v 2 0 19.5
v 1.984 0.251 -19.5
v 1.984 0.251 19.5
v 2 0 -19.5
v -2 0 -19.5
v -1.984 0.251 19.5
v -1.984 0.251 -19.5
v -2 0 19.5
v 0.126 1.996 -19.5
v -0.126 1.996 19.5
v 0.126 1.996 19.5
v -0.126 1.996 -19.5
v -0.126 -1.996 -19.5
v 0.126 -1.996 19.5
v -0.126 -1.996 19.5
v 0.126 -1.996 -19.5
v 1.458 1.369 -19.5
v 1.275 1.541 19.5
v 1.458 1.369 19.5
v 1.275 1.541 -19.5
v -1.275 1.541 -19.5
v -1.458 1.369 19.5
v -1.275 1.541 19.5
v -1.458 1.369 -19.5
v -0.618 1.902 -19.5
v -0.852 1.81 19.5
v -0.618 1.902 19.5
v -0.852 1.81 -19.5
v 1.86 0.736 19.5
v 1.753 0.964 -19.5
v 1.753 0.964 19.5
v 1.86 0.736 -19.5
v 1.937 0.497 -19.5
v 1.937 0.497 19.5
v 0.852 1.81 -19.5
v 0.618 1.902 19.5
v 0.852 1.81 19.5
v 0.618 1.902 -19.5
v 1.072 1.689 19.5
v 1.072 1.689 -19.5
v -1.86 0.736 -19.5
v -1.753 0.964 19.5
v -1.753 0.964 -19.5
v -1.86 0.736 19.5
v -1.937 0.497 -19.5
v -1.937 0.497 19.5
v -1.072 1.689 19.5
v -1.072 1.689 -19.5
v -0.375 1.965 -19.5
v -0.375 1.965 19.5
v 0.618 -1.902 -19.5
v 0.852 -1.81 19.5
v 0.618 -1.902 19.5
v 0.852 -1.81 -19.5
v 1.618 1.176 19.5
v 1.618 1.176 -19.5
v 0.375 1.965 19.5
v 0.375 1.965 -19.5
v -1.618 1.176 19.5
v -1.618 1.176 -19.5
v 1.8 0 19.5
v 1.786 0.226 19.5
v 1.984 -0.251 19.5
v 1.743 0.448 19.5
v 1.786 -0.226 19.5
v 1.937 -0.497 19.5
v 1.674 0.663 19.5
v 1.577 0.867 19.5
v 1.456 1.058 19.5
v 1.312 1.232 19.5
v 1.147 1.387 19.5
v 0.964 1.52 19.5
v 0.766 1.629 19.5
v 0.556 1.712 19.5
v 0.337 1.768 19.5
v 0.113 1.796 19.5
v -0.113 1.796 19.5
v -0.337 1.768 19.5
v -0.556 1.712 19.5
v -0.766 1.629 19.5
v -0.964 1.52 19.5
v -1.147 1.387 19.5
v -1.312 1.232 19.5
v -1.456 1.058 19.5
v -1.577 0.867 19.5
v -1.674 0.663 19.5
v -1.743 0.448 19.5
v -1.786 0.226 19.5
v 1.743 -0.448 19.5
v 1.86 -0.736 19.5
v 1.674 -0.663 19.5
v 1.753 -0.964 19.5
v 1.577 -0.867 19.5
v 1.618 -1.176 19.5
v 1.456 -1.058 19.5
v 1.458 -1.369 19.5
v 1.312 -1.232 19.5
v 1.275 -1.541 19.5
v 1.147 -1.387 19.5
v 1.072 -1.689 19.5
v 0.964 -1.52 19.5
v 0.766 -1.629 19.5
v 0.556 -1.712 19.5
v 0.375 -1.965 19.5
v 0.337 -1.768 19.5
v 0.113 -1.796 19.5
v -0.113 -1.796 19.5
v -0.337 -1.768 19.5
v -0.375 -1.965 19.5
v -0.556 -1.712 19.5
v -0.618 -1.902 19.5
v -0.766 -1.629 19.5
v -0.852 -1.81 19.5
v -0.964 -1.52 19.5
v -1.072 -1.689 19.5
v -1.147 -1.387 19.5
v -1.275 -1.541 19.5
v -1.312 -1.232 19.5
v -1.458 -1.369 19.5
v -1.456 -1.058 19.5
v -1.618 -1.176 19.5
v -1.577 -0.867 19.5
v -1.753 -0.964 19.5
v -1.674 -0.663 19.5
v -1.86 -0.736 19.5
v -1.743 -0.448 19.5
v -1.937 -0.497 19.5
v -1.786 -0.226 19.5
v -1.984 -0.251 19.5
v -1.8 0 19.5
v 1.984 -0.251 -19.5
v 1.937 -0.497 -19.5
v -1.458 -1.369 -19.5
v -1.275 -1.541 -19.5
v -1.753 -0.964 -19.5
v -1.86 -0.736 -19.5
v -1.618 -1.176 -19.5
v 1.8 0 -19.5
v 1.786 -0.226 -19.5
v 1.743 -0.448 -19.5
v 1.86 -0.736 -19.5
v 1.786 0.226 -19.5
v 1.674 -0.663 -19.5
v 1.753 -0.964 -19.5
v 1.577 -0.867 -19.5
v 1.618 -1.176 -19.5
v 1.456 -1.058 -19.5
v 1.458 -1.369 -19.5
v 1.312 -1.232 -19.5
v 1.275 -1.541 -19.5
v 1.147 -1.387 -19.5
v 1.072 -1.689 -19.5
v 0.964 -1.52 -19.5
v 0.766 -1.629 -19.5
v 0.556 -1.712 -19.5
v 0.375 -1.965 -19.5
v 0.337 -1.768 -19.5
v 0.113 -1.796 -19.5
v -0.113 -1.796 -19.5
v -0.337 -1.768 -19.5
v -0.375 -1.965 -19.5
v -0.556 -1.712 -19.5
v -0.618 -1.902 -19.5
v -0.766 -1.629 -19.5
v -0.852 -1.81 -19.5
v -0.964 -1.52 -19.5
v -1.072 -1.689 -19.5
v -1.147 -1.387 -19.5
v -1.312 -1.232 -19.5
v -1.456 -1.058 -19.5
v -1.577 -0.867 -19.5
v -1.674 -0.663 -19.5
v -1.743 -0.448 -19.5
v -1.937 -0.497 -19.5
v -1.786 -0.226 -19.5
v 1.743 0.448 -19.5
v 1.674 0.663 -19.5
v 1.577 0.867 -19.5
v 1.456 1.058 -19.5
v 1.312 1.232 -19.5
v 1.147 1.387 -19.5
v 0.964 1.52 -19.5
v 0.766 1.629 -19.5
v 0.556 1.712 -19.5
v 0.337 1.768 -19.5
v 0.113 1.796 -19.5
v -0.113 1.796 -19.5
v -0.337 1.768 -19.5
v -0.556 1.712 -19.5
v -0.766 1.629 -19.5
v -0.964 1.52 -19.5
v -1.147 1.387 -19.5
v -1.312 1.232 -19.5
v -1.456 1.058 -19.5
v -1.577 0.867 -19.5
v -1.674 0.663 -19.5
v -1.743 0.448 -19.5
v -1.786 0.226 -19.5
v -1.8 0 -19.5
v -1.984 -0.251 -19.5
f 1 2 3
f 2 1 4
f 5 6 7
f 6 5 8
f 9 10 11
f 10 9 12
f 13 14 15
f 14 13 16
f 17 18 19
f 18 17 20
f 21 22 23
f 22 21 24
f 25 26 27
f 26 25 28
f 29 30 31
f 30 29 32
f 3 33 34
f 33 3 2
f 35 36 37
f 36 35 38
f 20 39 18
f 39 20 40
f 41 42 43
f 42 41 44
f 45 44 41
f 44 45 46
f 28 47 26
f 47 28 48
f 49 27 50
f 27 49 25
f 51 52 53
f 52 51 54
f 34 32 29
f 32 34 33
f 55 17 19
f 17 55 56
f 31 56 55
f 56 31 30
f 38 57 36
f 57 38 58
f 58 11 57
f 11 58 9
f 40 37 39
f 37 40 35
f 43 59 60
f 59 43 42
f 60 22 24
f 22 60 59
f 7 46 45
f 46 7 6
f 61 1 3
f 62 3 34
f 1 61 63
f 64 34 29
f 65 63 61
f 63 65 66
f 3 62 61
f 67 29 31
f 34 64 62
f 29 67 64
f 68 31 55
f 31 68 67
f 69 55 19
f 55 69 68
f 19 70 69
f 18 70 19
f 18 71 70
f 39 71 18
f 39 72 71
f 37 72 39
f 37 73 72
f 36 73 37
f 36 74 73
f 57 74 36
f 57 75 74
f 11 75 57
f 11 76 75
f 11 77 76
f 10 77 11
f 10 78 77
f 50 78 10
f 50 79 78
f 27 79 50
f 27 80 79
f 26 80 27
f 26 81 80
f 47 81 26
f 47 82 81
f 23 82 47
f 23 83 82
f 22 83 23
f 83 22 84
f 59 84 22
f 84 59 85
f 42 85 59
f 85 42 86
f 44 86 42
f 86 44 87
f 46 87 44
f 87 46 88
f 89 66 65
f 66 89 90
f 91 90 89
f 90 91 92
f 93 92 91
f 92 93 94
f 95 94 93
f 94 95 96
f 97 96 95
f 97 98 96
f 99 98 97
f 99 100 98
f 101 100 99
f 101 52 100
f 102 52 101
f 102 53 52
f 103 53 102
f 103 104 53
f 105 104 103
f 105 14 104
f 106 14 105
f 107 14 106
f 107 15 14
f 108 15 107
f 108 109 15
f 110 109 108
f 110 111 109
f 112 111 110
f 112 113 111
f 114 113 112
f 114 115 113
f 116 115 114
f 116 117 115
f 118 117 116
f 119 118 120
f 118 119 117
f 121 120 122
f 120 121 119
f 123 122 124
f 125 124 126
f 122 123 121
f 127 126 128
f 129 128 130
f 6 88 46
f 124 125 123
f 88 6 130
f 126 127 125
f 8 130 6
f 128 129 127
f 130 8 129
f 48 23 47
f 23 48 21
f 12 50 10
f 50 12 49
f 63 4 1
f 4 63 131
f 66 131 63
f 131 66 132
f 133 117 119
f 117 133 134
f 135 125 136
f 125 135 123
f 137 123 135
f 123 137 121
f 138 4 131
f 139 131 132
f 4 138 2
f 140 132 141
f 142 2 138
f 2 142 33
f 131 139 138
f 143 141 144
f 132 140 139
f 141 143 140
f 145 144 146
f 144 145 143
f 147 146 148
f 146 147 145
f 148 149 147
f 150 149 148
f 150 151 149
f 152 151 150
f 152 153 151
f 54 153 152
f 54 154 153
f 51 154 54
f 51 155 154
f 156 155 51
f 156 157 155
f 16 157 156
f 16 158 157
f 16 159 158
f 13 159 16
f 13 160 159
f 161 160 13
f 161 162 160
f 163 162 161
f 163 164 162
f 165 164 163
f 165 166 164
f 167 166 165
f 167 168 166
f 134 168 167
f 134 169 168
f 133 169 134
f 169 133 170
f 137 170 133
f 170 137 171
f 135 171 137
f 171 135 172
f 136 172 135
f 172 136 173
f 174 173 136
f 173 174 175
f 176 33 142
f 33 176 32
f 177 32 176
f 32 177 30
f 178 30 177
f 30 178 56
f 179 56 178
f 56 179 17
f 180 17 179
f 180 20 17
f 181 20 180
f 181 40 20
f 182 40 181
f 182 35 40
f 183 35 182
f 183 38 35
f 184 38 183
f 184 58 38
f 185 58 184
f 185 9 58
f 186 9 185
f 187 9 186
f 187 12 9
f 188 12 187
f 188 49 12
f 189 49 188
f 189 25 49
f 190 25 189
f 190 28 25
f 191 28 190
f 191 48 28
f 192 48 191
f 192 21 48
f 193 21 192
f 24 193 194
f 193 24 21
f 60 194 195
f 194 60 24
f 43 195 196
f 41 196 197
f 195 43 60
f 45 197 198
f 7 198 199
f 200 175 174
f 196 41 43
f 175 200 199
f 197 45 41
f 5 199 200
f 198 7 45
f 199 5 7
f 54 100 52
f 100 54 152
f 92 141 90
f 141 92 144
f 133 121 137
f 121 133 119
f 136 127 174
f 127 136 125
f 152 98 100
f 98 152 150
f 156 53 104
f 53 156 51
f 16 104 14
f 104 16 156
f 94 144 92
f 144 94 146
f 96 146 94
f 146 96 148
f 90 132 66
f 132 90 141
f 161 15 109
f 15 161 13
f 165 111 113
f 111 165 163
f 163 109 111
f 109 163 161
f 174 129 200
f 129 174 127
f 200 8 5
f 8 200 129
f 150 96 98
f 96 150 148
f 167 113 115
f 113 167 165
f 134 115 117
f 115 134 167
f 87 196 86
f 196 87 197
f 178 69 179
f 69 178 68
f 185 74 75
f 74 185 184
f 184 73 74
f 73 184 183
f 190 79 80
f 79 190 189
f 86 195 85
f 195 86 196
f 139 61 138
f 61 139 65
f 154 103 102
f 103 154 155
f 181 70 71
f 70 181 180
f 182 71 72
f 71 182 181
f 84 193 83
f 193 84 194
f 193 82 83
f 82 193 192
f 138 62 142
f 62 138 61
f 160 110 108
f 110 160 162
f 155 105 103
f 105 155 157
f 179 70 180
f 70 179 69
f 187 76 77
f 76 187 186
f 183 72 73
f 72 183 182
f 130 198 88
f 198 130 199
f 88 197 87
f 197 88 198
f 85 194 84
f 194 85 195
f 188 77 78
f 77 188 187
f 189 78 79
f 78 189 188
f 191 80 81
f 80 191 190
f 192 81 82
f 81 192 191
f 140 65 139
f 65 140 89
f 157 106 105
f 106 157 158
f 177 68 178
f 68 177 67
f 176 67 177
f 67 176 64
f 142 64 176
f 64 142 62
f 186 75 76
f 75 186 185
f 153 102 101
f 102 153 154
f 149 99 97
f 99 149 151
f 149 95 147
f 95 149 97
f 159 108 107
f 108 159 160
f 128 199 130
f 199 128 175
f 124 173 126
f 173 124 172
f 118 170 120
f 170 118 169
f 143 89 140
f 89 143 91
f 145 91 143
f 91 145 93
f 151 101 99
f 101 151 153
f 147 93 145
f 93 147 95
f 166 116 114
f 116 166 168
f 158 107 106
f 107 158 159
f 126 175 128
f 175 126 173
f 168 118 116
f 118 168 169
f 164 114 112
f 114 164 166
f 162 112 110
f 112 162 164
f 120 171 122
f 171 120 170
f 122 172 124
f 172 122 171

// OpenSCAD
$fn = 50;


difference() {
	union() {
		translate(v = [0, 0, -19.5000000000]) {
			cylinder(h = 39, r = 2.0000000000);
		}
	}
	union() {
		translate(v = [0, 0, -100.0000000000]) {
			cylinder(h = 200, r = 1.8000000000);
		}
	}
}
